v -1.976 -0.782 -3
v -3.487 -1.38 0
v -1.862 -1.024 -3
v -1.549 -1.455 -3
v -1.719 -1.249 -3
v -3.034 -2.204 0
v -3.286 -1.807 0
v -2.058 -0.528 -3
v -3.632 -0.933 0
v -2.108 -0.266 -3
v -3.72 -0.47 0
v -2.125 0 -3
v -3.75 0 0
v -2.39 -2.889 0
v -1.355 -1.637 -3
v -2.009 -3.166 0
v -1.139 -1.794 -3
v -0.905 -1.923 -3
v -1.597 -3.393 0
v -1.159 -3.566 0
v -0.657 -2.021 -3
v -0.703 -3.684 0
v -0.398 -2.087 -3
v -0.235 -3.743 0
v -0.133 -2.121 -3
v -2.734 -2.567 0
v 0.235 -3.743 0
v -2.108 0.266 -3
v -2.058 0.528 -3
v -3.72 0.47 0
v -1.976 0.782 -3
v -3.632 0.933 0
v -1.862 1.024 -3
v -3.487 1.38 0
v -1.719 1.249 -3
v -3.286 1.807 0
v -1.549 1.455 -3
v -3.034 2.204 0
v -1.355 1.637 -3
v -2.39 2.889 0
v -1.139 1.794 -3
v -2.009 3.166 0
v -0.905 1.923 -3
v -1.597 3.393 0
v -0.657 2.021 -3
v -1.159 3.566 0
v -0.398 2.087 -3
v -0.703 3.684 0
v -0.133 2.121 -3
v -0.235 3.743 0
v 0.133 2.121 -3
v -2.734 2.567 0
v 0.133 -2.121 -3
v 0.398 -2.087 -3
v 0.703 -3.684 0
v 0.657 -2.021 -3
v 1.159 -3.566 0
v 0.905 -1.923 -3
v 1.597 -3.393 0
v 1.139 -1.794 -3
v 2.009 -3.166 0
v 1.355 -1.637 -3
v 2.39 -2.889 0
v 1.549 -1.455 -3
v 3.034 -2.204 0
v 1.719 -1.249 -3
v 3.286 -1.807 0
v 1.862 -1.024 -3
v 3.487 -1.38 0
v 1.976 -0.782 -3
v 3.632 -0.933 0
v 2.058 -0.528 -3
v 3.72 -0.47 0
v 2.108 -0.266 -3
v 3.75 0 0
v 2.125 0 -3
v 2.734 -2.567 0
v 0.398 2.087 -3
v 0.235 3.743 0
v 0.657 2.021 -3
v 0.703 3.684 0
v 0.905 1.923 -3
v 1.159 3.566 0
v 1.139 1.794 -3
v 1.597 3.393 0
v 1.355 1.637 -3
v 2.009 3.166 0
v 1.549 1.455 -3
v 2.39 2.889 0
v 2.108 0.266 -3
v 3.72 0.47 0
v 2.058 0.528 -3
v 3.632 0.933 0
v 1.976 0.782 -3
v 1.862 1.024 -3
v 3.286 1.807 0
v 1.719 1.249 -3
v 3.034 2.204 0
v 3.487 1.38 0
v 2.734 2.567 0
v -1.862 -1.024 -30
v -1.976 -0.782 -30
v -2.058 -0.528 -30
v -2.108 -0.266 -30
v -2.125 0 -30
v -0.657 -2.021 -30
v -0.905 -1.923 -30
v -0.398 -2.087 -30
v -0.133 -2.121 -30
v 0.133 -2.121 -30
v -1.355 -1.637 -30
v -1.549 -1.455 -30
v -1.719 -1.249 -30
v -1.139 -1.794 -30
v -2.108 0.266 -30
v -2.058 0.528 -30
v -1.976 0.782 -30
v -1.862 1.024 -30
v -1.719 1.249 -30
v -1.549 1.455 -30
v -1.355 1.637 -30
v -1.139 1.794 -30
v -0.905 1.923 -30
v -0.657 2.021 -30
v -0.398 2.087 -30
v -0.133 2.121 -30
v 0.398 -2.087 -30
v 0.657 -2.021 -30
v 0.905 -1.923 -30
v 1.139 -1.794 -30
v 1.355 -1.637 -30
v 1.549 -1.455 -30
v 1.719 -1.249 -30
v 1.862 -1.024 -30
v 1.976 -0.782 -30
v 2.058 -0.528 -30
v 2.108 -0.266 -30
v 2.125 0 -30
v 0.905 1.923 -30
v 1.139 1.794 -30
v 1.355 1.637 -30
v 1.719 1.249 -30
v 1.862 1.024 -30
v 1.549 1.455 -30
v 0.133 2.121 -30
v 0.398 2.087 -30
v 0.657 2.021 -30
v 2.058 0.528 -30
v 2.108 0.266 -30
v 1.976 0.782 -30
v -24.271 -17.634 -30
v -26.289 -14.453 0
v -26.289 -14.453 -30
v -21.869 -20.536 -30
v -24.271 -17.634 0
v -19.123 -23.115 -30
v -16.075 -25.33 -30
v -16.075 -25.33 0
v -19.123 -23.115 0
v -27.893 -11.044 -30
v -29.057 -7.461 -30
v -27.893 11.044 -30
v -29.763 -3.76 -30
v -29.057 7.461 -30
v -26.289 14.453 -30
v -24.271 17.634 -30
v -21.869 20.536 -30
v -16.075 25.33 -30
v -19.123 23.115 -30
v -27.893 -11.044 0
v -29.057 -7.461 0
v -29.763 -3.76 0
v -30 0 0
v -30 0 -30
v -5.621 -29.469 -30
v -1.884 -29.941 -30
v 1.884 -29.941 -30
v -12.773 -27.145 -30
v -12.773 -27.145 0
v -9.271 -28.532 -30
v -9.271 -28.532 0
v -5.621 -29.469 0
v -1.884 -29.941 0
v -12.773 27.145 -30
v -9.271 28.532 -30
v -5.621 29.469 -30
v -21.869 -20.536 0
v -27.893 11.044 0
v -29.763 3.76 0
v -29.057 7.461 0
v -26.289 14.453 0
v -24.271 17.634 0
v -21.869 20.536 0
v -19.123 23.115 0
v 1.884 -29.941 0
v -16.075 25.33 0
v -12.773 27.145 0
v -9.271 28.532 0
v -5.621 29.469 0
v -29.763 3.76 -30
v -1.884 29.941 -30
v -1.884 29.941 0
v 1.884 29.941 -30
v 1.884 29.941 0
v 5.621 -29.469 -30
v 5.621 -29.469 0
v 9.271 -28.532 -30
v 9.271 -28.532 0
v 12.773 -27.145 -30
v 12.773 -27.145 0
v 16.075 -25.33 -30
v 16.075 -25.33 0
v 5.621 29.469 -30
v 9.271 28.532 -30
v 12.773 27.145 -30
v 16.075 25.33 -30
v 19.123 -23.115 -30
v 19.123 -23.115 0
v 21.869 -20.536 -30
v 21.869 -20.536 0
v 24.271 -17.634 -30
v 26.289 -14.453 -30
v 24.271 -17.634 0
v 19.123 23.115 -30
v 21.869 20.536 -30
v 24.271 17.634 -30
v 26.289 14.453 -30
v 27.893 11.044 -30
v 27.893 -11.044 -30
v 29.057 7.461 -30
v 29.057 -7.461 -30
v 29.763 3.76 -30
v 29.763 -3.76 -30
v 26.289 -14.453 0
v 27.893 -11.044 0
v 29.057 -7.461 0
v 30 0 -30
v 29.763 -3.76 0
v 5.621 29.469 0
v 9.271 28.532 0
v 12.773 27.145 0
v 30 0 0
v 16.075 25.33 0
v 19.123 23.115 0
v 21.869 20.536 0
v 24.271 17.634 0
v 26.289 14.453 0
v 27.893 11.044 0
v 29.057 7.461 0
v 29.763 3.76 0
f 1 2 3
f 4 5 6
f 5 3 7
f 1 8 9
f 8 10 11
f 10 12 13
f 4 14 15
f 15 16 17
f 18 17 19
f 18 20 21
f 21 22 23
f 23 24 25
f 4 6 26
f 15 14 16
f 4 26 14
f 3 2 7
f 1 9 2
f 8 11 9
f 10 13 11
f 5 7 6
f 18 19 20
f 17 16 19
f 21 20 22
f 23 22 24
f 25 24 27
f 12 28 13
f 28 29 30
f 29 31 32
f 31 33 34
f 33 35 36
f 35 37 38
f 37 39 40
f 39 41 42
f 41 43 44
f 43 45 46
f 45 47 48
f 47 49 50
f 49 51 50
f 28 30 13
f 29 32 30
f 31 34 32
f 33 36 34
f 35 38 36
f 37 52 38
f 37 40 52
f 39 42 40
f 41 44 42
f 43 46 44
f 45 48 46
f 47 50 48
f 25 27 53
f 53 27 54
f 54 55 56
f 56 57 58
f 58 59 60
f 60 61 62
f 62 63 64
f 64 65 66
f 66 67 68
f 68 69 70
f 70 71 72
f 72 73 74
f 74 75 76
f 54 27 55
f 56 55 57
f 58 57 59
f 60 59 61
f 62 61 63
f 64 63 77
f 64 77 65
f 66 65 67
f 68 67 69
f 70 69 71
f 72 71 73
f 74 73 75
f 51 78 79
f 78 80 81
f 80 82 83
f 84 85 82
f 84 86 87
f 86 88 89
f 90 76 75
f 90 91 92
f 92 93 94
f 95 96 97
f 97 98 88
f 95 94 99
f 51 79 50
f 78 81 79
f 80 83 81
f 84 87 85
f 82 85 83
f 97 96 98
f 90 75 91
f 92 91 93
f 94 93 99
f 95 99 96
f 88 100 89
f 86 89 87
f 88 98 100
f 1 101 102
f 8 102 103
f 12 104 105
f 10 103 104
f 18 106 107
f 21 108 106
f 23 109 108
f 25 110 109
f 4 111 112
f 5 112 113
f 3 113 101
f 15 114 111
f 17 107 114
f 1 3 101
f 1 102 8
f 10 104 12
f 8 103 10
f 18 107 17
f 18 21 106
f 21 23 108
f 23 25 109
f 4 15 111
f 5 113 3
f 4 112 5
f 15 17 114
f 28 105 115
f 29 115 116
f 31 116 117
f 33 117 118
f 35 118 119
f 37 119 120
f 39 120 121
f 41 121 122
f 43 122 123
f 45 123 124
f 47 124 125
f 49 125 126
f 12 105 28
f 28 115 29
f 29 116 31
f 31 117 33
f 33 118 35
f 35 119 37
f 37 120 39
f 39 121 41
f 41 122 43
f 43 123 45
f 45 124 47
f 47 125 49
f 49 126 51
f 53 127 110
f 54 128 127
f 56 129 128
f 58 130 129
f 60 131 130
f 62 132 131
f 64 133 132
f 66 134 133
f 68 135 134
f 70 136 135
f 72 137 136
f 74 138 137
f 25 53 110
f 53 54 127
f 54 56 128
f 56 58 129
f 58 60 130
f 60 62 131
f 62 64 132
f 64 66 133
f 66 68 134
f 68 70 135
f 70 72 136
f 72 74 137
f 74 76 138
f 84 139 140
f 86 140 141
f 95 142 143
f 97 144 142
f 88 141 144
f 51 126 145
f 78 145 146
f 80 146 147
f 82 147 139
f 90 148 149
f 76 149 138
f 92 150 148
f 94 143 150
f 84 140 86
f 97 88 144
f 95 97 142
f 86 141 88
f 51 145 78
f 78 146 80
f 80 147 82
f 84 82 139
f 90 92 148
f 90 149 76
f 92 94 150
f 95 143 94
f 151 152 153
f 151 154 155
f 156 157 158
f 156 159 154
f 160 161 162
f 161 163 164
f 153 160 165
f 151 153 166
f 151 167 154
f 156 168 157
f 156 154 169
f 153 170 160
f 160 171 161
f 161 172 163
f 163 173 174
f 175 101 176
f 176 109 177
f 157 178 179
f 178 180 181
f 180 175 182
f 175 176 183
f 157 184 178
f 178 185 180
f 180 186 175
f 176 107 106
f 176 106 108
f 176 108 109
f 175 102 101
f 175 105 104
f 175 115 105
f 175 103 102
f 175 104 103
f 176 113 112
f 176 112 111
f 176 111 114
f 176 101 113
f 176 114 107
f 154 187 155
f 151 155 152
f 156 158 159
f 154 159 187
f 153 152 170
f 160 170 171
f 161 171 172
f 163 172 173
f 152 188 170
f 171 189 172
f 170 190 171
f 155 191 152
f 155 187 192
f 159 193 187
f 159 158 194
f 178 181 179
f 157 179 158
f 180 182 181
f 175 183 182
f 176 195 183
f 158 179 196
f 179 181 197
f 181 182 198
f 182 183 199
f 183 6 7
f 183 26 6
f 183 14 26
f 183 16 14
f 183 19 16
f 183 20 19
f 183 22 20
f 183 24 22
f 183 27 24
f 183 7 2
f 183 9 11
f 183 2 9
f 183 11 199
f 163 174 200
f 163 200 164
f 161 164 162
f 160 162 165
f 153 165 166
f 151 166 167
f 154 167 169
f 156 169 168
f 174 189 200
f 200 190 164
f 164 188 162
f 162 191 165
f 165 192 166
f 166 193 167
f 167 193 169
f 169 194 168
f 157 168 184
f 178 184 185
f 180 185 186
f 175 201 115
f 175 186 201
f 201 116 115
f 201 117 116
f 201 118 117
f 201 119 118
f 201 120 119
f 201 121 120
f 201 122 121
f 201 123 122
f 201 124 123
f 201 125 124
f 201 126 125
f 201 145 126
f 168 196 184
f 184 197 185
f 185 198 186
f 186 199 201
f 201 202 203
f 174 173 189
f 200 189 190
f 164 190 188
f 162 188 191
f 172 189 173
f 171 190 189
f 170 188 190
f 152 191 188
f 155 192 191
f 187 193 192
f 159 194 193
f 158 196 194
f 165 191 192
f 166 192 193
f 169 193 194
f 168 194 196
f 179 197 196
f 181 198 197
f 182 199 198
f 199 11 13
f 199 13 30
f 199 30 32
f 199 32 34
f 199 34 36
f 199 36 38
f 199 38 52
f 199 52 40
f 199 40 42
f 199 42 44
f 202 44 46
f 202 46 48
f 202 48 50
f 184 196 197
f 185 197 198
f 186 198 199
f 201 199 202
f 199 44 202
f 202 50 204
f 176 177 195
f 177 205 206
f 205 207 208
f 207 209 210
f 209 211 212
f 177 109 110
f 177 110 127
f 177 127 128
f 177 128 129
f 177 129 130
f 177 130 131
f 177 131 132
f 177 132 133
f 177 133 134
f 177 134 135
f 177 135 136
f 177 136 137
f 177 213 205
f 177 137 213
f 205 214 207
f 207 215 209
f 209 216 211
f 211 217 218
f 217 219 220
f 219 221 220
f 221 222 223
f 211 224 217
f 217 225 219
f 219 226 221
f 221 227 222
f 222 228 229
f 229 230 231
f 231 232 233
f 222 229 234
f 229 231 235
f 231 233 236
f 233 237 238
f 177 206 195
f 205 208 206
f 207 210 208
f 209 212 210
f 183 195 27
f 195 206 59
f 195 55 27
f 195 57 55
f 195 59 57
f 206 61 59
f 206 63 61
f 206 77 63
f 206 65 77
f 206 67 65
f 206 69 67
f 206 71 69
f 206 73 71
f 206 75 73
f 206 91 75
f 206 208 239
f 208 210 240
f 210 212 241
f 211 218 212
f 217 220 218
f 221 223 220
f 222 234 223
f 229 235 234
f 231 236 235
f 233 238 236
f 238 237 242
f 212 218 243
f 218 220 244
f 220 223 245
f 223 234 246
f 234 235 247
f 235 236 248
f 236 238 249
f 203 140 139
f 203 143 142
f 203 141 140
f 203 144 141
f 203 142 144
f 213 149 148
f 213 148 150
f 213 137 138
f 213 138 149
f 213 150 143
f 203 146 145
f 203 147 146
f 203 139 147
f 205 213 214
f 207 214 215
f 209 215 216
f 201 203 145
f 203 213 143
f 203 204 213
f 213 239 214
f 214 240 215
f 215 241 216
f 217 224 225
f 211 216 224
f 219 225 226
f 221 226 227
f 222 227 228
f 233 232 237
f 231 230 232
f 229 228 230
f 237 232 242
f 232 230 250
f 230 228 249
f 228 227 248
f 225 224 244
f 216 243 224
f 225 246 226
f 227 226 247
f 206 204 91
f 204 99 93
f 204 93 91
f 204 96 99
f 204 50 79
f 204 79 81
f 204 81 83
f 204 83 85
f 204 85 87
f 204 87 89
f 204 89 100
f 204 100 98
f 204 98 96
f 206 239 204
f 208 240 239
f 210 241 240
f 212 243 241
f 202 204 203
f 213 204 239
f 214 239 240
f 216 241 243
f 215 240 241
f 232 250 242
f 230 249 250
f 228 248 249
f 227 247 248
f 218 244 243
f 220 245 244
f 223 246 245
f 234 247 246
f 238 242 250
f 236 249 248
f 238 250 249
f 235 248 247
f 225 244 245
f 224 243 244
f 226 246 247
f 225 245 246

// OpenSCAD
$fn = 50;


difference() {
	union() {
		translate(v = [0, 0, -30.0000000000]) {
			cylinder(h = 30, r = 30.0000000000);
		}
	}
	union() {
		translate(v = [0, 0, 0]) {
			rotate(a = [0, 0, 0]) {
				difference() {
					union() {
						translate(v = [0, 0, -33.0000000000]) {
							cylinder(h = 33, r = 2.0000000000);
						}
						translate(v = [0, 0, -3]) {
							cylinder(h = 3, r1 = 2.1250000000, r2 = 3.7500000000);
						}
						translate(v = [0, 0, -33.0000000000]) {
							cylinder(h = 33, r = 2.1250000000);
						}
						translate(v = [0, 0, -33.0000000000]) {
							cylinder(h = 33, r = 2.0000000000);
						}
					}
					union();
				}
			}
		}
	}
}
